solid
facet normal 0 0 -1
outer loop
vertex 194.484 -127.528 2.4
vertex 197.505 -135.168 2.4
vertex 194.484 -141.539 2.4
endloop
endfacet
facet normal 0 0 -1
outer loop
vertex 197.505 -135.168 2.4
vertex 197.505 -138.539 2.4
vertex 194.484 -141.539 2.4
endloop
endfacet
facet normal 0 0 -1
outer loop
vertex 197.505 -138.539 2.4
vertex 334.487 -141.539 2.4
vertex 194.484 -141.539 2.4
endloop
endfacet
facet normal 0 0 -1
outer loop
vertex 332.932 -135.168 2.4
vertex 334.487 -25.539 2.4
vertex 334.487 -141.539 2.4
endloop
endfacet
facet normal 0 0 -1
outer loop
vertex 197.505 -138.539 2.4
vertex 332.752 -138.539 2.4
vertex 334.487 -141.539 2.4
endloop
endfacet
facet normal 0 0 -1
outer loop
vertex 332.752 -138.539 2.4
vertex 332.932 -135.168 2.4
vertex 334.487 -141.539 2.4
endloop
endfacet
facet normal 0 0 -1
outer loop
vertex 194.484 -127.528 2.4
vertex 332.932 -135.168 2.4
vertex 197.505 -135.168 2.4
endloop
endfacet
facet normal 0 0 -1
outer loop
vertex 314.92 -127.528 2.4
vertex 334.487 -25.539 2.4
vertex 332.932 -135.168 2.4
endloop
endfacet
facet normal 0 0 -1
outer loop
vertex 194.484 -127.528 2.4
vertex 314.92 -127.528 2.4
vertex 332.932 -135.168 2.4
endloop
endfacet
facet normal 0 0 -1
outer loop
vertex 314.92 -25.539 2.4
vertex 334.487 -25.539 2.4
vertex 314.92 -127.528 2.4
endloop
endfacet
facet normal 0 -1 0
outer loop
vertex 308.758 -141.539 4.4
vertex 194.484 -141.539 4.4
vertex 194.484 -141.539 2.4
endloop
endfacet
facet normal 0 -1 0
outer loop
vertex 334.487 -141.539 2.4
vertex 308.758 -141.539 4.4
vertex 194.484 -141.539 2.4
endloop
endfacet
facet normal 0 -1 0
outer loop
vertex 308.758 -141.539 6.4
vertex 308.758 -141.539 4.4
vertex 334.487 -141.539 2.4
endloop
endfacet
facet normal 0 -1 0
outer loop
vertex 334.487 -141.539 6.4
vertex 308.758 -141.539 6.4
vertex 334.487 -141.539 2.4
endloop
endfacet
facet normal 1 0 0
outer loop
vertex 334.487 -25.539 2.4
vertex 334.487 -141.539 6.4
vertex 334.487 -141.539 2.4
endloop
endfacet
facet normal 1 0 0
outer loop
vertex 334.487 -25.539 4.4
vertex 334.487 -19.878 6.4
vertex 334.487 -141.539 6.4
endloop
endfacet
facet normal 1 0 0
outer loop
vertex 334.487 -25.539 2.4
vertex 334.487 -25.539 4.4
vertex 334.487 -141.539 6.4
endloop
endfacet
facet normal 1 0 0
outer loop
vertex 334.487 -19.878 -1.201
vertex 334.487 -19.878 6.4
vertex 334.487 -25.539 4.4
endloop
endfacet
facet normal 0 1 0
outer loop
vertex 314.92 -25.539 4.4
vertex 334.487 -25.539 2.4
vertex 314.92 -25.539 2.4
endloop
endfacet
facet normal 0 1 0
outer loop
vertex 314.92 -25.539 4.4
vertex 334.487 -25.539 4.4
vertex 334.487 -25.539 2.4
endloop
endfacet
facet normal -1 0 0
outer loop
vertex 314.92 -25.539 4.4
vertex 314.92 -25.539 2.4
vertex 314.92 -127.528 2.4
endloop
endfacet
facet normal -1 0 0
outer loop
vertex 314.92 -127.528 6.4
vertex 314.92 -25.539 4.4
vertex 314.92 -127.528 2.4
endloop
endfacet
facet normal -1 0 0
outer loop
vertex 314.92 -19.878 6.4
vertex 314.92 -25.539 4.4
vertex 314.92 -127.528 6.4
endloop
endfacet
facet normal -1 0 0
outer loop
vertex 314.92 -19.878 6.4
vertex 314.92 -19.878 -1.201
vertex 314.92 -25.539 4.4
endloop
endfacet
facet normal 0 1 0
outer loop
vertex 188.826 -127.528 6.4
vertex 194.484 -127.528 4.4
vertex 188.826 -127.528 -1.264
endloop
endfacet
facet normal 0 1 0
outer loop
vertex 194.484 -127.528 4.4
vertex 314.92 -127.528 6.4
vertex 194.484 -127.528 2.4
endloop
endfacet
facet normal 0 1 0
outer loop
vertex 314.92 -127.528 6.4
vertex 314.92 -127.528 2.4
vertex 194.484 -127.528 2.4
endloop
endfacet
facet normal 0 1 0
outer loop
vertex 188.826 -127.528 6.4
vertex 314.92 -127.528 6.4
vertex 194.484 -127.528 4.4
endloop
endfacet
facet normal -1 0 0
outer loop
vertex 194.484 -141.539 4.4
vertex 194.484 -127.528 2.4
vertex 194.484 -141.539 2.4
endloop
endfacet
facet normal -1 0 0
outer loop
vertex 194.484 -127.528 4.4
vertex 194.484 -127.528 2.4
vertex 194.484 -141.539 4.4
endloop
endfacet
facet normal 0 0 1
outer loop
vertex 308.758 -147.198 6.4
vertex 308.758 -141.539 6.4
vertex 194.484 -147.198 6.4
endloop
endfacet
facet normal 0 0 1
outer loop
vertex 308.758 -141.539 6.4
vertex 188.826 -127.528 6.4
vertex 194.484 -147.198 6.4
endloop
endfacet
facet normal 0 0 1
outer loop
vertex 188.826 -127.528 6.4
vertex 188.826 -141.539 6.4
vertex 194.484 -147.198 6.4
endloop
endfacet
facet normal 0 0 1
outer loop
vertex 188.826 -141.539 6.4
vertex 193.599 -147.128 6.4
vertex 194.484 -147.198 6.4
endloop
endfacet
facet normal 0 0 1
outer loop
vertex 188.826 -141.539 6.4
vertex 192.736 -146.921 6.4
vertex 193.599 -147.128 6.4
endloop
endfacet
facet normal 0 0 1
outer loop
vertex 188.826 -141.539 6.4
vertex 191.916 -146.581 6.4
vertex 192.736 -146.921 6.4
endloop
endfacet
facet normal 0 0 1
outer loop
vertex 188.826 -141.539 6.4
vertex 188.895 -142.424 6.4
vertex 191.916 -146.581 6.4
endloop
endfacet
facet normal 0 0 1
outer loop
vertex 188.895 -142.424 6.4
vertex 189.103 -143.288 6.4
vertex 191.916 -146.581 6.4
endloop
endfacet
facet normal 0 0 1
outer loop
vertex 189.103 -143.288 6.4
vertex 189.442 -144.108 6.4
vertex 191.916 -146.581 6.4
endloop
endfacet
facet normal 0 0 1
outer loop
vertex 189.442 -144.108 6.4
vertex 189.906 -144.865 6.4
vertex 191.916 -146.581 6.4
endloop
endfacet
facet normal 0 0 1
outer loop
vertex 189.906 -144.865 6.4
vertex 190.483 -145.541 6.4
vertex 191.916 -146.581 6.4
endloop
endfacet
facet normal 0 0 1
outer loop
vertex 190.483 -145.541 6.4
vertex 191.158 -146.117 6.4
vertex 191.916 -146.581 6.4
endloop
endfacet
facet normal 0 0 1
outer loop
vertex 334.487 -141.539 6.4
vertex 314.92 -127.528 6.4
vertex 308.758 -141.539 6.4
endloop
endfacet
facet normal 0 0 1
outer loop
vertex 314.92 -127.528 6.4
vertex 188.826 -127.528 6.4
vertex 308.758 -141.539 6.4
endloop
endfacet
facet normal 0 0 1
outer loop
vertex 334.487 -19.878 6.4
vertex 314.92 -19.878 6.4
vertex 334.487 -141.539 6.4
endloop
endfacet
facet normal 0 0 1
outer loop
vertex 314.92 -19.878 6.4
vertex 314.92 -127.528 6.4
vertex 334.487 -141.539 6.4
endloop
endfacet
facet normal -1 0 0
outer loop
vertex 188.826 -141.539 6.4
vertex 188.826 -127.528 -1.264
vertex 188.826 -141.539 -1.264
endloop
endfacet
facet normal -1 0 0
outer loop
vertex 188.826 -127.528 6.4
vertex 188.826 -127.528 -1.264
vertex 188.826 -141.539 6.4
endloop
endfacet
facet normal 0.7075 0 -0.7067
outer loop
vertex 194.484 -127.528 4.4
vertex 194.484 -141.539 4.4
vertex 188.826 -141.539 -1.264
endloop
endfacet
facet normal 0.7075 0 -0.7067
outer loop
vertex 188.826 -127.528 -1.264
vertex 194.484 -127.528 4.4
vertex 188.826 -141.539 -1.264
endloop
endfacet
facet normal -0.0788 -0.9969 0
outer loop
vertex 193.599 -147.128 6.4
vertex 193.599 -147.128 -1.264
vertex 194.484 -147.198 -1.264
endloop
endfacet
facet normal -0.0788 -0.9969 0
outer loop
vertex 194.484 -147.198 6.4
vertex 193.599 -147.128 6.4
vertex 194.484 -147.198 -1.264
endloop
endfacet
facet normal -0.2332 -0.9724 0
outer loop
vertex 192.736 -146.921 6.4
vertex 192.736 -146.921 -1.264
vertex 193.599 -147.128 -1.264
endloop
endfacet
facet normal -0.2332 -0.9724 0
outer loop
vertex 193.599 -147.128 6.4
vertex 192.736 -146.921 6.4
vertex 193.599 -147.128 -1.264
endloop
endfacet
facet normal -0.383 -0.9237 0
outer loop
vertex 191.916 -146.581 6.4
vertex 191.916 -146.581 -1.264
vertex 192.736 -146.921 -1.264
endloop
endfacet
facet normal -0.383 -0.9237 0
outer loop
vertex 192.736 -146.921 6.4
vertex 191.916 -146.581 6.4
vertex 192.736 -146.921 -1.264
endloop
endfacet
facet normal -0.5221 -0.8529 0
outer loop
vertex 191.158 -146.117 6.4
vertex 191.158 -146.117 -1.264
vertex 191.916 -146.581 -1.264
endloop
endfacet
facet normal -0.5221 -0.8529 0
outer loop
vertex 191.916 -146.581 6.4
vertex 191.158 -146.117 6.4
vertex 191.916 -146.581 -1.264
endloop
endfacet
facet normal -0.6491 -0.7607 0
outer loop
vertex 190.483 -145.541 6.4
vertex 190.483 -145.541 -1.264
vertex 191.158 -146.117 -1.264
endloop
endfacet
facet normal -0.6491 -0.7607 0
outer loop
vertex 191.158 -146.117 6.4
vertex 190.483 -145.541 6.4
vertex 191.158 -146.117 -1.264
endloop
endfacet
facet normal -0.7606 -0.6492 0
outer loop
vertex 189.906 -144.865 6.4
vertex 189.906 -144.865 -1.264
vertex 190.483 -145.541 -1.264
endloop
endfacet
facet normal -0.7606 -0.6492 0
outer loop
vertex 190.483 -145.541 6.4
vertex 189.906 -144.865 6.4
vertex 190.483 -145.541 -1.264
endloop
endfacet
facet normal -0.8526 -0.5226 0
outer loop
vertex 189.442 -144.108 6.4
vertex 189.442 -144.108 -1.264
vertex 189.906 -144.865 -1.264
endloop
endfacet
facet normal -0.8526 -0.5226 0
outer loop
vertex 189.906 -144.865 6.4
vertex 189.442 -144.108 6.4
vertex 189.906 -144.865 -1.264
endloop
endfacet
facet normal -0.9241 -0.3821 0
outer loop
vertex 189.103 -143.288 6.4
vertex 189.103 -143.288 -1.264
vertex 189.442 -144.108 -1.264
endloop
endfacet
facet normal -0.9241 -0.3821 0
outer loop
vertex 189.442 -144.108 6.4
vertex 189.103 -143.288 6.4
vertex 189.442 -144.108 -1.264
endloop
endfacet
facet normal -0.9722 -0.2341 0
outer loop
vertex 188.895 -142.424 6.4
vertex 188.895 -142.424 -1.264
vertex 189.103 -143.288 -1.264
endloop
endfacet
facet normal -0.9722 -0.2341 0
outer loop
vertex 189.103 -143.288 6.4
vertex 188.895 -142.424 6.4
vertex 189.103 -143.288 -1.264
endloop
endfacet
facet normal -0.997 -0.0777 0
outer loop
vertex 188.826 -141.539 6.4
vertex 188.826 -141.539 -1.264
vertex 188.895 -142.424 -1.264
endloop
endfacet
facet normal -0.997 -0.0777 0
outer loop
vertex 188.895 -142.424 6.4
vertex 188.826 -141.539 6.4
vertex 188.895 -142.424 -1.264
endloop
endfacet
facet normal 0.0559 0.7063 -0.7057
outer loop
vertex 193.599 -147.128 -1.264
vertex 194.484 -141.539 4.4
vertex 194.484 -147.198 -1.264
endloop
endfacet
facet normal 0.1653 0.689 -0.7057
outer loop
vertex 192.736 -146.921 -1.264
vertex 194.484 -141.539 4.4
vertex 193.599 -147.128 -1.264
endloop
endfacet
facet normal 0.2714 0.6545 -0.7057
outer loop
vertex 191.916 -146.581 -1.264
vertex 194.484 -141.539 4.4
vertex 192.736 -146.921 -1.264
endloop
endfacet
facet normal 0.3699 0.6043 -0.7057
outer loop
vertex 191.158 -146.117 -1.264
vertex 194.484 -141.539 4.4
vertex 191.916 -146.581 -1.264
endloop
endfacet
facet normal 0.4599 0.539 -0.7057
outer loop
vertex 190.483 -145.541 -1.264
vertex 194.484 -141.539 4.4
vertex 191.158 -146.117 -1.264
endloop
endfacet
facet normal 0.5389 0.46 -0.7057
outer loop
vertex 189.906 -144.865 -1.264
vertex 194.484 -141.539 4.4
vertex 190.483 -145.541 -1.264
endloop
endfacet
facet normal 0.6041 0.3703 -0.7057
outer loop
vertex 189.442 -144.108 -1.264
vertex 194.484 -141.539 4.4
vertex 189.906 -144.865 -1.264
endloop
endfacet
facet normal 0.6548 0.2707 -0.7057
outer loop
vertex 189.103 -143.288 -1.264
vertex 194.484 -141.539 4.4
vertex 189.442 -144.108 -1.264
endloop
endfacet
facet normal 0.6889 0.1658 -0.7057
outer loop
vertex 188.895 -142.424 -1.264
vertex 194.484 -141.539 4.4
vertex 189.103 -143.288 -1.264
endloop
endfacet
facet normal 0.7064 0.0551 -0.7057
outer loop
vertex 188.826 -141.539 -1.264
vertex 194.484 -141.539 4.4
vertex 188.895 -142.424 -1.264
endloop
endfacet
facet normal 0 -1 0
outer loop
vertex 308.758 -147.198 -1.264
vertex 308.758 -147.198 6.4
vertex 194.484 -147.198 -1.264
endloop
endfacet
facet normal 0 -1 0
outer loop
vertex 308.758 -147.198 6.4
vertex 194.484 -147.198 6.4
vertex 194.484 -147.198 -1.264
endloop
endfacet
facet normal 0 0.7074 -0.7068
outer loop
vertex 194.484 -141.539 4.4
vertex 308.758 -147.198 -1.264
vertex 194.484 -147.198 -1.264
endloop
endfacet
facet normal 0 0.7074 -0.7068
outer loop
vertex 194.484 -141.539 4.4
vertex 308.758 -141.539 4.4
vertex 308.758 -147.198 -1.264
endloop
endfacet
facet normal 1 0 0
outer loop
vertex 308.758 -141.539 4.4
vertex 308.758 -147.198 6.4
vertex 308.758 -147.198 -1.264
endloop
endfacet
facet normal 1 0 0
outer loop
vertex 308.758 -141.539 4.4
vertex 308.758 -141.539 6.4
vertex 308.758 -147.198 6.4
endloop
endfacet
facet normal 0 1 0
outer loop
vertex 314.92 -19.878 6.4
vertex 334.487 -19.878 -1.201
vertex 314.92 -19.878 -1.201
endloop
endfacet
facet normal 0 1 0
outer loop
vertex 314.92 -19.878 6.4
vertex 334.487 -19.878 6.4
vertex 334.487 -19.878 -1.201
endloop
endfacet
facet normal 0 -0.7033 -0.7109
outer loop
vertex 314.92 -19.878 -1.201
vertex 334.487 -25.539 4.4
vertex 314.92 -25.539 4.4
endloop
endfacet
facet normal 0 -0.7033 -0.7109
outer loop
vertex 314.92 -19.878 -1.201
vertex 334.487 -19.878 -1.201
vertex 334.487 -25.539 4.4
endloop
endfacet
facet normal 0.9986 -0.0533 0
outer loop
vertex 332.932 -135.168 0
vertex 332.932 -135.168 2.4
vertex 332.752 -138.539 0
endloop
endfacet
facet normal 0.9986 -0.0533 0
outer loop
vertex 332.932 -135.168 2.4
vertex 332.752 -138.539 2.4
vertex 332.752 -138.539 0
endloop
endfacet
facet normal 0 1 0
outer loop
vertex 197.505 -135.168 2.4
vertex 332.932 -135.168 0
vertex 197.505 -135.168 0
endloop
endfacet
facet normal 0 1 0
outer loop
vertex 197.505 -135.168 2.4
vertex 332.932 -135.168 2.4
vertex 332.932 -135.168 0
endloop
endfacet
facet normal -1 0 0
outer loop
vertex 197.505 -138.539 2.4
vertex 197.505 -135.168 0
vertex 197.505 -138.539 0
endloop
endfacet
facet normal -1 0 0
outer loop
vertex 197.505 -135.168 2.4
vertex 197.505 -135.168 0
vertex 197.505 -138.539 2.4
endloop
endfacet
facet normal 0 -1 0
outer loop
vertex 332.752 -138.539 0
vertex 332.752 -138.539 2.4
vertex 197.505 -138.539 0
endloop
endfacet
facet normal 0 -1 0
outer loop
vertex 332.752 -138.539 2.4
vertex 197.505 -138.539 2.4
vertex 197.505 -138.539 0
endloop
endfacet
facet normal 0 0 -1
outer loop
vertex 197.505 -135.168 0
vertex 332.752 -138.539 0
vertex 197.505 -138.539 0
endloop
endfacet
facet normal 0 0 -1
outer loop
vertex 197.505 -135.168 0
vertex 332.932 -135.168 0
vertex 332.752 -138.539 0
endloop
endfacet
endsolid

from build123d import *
from build123d.topology import SkipClean

# Parameters (mm, degrees)
BOSS_EXTRUDE1_START = 24.318234
BOSS_EXTRUDE1_DEPTH = 4
BOSS_EXTRUDE2_DEPTH = 14.010881
REVOLVE1_ANGLE      = 90
BOSS_EXTRUDE3_DEPTH = 114.273182
BOSS_EXTRUDE4_DEPTH = 19.567345
BOSS_EXTRUDE5_DEPTH = 2.39999941


with BuildPart() as part:
    # Sketch4 → Boss-Extrude1 (new body)
    with BuildSketch(Plane.XY.offset(-21.918234102).offset(BOSS_EXTRUDE1_START)):
        Polygon((194.484495585, -141.539185417), (194.484495585, -127.528304219), (314.919807208, -127.528304219), (314.919807208, -25.539185417), (334.487155432, -25.539185417), (334.487155432, -127.528304219), (334.487155432, -141.539185417), align=None)
    extrude(amount=BOSS_EXTRUDE1_DEPTH)

    # Sketch5 → Boss-Extrude2 (add)
    with SkipClean():  # the faces are left unmerged after this step: merging them gives an invalid solid
        with BuildSketch(Plane(origin=(0, -127.528304219, 0), x_dir=(1, 0, 0), z_dir=(0, 1, 0))):
            Polygon((194.484495585, -4.39999941), (188.825701169, 1.263814406), (188.825701169, -6.39999941), (194.484495585, -6.39999941), align=None)
        extrude(amount=-BOSS_EXTRUDE2_DEPTH)

    # Sketch6 → Revolve1 (revolve)
    with BuildSketch(Plane.XZ.offset(141.539185417)):
        Polygon((188.825701169, -1.263814406), (194.484495585, 4.39999941), (194.484495585, 6.39999941), (188.825701169, 6.39999941), align=None)
    revolve(axis=Axis((194.484495585, -141.539185417, 4.39999941), (0, 0, 1)), revolution_arc=REVOLVE1_ANGLE)

    # Sketch7 → Boss-Extrude3 (add)
    with BuildSketch(Plane(origin=(194.484495585, 0, 0), x_dir=(0, 0, -1), z_dir=(1, 0, 0))):
        Polygon((-6.39999941, -147.197979834), (1.263814406, -147.197979834), (-4.39999941, -141.539185417), (-6.39999941, -141.539185417), align=None)
    extrude(amount=BOSS_EXTRUDE3_DEPTH)

    # Sketch9 → Boss-Extrude4 (add)
    with BuildSketch(Plane(origin=(334.487155432, 0, 0), x_dir=(0, 0, -1), z_dir=(1, 0, 0))):
        Polygon((-4.39999941, -25.539185417), (1.201014861, -19.877880744), (-6.39999941, -19.877880744), (-6.39999941, -25.539185417), align=None)
    extrude(amount=-BOSS_EXTRUDE4_DEPTH)


with BuildPart() as boss_extrude5_tool:
    # Sketch11 → Boss-Extrude5 (new body)
    with BuildSketch(Plane(origin=(0, 0, 2.39999941), x_dir=(-1, 0, 0), z_dir=(0, 0, -1))):
        Polygon((-197.504878741, -135.167945919), (-197.504878741, -138.539185417), (-332.752260863, -138.539185417), (-332.932155432, -135.167945919), align=None)
    extrude(amount=BOSS_EXTRUDE5_DEPTH)


with BuildPart() as part_1:
    add(part.part)


with BuildPart() as part_2:
    # Boss-Extrude5: joined with boss_extrude5_tool
    add(part_1.part.fuse(boss_extrude5_tool.part, tol=0.00001))


solid = part_2.part
